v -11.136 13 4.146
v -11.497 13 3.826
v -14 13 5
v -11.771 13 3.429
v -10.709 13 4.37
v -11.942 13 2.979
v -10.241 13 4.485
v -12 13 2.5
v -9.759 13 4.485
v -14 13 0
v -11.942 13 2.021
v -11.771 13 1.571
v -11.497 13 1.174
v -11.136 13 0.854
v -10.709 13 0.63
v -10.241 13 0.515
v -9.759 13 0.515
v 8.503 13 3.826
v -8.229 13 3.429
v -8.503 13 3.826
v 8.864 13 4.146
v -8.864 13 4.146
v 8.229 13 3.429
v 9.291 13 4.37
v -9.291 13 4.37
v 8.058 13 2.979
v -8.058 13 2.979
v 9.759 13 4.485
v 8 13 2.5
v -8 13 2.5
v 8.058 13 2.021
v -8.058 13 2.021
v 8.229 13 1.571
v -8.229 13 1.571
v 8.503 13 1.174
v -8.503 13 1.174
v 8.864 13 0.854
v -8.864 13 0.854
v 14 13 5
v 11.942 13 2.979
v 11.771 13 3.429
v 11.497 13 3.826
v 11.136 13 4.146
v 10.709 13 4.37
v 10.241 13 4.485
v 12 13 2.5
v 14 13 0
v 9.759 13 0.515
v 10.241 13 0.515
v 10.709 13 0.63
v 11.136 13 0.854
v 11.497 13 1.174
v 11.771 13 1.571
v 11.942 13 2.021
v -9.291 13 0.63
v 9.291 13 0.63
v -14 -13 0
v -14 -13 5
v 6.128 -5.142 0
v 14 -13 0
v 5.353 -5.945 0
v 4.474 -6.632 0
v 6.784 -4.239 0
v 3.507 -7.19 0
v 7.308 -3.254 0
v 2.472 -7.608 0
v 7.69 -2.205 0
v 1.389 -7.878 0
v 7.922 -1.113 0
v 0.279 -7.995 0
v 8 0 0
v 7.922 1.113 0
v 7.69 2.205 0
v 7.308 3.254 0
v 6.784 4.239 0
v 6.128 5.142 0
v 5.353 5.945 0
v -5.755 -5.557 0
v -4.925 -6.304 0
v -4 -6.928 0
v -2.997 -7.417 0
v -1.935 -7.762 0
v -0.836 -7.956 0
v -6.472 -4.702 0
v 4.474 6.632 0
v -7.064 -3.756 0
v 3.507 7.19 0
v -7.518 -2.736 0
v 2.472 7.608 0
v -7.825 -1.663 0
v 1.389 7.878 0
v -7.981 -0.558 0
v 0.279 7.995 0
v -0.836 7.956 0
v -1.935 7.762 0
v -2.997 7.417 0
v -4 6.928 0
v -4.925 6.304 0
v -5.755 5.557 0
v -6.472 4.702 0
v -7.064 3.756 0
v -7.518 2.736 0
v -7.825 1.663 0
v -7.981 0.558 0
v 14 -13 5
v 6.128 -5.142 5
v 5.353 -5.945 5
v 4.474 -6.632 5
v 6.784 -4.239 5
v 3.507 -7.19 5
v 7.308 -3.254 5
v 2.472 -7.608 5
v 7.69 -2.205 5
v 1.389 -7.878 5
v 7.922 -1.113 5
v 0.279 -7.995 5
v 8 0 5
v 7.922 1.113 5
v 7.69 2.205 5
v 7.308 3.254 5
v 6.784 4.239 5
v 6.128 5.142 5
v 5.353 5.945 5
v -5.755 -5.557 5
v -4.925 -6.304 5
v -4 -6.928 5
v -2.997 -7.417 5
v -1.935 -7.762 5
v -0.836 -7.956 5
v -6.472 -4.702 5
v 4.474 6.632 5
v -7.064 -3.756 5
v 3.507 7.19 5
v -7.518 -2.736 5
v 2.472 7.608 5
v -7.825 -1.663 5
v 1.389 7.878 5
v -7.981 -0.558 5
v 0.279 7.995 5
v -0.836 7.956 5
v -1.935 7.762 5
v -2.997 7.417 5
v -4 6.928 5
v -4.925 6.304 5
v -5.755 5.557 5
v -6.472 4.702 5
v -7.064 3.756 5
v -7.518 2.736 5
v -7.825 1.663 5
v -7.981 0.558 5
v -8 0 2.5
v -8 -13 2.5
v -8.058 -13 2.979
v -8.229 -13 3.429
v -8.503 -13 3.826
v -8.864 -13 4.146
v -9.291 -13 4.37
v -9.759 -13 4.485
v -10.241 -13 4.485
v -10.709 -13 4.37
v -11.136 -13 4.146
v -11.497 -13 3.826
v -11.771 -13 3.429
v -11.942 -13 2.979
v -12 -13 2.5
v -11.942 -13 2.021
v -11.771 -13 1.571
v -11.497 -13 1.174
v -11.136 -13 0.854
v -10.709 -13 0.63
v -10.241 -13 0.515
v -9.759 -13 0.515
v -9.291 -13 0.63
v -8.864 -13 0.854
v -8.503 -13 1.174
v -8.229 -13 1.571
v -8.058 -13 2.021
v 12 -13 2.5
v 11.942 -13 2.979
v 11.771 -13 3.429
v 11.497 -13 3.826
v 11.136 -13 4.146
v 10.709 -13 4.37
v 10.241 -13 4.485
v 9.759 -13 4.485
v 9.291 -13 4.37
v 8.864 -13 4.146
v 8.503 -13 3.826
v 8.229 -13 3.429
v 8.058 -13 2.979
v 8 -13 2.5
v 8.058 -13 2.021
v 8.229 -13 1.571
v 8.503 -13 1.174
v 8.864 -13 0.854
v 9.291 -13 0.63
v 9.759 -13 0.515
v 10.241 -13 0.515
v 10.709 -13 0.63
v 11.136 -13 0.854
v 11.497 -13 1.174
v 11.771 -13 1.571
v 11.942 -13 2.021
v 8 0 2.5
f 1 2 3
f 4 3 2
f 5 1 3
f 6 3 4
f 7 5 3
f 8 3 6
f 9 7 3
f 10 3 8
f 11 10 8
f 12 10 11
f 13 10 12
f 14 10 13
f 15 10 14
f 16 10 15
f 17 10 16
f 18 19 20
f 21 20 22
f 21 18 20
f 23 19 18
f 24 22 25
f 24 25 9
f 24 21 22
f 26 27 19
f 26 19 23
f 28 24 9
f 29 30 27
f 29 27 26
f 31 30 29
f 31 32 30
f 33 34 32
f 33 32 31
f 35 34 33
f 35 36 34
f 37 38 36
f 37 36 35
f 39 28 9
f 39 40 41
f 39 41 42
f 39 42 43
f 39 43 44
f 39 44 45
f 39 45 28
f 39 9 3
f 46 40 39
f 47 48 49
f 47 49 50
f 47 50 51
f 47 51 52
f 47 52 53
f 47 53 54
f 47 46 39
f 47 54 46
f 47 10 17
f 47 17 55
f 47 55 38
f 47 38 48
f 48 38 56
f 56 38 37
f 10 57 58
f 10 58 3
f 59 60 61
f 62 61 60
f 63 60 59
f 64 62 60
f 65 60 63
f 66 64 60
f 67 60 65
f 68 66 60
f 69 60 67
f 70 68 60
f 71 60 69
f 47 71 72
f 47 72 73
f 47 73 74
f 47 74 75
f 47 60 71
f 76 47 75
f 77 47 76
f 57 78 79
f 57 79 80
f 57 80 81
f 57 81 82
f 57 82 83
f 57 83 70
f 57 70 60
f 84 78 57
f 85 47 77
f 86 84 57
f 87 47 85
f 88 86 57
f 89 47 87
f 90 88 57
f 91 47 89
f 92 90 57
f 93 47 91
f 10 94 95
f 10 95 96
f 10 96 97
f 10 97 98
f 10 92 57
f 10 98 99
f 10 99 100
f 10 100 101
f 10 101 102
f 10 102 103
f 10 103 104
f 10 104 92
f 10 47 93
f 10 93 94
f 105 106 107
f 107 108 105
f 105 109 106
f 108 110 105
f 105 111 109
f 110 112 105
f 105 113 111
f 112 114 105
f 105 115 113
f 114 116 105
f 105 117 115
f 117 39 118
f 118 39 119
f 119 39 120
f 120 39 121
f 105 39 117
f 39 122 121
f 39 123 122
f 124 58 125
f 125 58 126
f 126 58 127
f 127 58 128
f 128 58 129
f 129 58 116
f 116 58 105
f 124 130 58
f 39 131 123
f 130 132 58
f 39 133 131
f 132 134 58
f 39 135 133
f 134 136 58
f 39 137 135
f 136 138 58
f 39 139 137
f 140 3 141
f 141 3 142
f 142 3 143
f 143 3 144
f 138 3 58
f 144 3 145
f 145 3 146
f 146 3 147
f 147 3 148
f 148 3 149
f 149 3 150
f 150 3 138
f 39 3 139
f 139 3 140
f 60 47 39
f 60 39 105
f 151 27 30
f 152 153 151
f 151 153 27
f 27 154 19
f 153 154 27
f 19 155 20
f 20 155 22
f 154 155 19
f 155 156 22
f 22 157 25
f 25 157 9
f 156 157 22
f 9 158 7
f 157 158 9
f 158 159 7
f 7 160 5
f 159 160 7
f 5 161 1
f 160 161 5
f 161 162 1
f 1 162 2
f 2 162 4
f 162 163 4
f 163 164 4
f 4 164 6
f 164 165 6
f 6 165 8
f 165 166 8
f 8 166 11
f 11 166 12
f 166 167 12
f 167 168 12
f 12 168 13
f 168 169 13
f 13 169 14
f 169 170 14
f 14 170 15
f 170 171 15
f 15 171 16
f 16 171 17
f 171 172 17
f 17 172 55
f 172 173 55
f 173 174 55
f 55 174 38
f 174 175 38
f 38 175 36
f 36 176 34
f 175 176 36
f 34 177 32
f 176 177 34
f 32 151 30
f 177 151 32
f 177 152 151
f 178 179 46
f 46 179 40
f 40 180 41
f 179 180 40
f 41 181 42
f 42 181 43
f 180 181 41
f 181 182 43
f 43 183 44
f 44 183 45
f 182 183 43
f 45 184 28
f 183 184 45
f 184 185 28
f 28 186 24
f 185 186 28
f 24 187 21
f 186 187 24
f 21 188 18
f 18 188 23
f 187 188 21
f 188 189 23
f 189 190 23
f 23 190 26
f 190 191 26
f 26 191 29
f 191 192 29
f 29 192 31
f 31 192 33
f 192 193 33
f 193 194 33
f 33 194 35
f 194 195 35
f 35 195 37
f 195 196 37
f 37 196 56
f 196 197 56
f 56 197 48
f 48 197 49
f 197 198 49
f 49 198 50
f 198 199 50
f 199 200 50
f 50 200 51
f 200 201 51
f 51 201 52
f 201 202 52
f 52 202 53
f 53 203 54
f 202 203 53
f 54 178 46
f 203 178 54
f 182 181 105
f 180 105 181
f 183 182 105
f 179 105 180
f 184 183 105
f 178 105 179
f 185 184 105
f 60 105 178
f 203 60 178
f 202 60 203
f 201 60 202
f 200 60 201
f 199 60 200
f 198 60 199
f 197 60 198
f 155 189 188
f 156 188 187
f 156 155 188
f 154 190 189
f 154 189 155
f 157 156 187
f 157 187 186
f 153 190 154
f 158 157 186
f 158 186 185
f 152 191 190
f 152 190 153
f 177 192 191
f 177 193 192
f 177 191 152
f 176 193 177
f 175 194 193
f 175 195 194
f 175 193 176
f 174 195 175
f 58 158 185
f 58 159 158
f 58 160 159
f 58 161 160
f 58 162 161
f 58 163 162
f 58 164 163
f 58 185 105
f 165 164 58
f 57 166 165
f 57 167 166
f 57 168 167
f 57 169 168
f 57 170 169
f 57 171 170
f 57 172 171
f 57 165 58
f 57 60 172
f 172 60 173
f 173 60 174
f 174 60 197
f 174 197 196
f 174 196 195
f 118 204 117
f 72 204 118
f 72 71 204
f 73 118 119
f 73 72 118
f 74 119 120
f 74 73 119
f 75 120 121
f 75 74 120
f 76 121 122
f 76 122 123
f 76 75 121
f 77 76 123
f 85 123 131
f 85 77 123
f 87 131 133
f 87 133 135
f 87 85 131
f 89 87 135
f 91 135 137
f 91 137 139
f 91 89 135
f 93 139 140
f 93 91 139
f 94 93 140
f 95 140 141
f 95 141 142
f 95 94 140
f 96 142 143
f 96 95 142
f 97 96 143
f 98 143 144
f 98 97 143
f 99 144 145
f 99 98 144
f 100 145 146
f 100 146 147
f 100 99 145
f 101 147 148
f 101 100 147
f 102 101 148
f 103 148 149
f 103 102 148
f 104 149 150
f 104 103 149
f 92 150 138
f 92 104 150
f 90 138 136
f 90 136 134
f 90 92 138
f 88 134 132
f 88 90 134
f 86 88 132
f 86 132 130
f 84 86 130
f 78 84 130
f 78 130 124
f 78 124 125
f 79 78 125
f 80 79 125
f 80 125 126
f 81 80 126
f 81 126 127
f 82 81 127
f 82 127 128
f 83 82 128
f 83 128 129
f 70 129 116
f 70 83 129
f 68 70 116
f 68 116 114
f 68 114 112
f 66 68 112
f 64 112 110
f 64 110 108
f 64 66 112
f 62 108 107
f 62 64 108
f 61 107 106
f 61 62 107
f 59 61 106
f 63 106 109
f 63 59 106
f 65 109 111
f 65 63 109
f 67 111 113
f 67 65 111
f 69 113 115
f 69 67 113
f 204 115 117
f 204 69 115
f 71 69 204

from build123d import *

# Parameters (mm, degrees)
SKETCH_W     = 28
SKETCH_H     = 26
SKETCH_R     = 8
PAD_DEPTH    = 5
SKETCH001_R  = 2
POCKET_DEPTH = 26.001


with BuildPart() as part:
    # Sketch → Pad (new body)
    with BuildSketch(Plane.XY):
        Rectangle(SKETCH_W, SKETCH_H)
        Circle(SKETCH_R, mode=Mode.SUBTRACT)
    extrude(amount=PAD_DEPTH)

    # Sketch001 (on Face3 of Pad) → Pocket (cut, through all)
    with BuildSketch(Plane.XZ.offset(13)):
        with Locations((10, 2.5)):
            Circle(SKETCH001_R)
        with Locations((-10, 2.5)):
            Circle(SKETCH001_R)
    extrude(amount=-POCKET_DEPTH, mode=Mode.SUBTRACT)


solid = part.part
